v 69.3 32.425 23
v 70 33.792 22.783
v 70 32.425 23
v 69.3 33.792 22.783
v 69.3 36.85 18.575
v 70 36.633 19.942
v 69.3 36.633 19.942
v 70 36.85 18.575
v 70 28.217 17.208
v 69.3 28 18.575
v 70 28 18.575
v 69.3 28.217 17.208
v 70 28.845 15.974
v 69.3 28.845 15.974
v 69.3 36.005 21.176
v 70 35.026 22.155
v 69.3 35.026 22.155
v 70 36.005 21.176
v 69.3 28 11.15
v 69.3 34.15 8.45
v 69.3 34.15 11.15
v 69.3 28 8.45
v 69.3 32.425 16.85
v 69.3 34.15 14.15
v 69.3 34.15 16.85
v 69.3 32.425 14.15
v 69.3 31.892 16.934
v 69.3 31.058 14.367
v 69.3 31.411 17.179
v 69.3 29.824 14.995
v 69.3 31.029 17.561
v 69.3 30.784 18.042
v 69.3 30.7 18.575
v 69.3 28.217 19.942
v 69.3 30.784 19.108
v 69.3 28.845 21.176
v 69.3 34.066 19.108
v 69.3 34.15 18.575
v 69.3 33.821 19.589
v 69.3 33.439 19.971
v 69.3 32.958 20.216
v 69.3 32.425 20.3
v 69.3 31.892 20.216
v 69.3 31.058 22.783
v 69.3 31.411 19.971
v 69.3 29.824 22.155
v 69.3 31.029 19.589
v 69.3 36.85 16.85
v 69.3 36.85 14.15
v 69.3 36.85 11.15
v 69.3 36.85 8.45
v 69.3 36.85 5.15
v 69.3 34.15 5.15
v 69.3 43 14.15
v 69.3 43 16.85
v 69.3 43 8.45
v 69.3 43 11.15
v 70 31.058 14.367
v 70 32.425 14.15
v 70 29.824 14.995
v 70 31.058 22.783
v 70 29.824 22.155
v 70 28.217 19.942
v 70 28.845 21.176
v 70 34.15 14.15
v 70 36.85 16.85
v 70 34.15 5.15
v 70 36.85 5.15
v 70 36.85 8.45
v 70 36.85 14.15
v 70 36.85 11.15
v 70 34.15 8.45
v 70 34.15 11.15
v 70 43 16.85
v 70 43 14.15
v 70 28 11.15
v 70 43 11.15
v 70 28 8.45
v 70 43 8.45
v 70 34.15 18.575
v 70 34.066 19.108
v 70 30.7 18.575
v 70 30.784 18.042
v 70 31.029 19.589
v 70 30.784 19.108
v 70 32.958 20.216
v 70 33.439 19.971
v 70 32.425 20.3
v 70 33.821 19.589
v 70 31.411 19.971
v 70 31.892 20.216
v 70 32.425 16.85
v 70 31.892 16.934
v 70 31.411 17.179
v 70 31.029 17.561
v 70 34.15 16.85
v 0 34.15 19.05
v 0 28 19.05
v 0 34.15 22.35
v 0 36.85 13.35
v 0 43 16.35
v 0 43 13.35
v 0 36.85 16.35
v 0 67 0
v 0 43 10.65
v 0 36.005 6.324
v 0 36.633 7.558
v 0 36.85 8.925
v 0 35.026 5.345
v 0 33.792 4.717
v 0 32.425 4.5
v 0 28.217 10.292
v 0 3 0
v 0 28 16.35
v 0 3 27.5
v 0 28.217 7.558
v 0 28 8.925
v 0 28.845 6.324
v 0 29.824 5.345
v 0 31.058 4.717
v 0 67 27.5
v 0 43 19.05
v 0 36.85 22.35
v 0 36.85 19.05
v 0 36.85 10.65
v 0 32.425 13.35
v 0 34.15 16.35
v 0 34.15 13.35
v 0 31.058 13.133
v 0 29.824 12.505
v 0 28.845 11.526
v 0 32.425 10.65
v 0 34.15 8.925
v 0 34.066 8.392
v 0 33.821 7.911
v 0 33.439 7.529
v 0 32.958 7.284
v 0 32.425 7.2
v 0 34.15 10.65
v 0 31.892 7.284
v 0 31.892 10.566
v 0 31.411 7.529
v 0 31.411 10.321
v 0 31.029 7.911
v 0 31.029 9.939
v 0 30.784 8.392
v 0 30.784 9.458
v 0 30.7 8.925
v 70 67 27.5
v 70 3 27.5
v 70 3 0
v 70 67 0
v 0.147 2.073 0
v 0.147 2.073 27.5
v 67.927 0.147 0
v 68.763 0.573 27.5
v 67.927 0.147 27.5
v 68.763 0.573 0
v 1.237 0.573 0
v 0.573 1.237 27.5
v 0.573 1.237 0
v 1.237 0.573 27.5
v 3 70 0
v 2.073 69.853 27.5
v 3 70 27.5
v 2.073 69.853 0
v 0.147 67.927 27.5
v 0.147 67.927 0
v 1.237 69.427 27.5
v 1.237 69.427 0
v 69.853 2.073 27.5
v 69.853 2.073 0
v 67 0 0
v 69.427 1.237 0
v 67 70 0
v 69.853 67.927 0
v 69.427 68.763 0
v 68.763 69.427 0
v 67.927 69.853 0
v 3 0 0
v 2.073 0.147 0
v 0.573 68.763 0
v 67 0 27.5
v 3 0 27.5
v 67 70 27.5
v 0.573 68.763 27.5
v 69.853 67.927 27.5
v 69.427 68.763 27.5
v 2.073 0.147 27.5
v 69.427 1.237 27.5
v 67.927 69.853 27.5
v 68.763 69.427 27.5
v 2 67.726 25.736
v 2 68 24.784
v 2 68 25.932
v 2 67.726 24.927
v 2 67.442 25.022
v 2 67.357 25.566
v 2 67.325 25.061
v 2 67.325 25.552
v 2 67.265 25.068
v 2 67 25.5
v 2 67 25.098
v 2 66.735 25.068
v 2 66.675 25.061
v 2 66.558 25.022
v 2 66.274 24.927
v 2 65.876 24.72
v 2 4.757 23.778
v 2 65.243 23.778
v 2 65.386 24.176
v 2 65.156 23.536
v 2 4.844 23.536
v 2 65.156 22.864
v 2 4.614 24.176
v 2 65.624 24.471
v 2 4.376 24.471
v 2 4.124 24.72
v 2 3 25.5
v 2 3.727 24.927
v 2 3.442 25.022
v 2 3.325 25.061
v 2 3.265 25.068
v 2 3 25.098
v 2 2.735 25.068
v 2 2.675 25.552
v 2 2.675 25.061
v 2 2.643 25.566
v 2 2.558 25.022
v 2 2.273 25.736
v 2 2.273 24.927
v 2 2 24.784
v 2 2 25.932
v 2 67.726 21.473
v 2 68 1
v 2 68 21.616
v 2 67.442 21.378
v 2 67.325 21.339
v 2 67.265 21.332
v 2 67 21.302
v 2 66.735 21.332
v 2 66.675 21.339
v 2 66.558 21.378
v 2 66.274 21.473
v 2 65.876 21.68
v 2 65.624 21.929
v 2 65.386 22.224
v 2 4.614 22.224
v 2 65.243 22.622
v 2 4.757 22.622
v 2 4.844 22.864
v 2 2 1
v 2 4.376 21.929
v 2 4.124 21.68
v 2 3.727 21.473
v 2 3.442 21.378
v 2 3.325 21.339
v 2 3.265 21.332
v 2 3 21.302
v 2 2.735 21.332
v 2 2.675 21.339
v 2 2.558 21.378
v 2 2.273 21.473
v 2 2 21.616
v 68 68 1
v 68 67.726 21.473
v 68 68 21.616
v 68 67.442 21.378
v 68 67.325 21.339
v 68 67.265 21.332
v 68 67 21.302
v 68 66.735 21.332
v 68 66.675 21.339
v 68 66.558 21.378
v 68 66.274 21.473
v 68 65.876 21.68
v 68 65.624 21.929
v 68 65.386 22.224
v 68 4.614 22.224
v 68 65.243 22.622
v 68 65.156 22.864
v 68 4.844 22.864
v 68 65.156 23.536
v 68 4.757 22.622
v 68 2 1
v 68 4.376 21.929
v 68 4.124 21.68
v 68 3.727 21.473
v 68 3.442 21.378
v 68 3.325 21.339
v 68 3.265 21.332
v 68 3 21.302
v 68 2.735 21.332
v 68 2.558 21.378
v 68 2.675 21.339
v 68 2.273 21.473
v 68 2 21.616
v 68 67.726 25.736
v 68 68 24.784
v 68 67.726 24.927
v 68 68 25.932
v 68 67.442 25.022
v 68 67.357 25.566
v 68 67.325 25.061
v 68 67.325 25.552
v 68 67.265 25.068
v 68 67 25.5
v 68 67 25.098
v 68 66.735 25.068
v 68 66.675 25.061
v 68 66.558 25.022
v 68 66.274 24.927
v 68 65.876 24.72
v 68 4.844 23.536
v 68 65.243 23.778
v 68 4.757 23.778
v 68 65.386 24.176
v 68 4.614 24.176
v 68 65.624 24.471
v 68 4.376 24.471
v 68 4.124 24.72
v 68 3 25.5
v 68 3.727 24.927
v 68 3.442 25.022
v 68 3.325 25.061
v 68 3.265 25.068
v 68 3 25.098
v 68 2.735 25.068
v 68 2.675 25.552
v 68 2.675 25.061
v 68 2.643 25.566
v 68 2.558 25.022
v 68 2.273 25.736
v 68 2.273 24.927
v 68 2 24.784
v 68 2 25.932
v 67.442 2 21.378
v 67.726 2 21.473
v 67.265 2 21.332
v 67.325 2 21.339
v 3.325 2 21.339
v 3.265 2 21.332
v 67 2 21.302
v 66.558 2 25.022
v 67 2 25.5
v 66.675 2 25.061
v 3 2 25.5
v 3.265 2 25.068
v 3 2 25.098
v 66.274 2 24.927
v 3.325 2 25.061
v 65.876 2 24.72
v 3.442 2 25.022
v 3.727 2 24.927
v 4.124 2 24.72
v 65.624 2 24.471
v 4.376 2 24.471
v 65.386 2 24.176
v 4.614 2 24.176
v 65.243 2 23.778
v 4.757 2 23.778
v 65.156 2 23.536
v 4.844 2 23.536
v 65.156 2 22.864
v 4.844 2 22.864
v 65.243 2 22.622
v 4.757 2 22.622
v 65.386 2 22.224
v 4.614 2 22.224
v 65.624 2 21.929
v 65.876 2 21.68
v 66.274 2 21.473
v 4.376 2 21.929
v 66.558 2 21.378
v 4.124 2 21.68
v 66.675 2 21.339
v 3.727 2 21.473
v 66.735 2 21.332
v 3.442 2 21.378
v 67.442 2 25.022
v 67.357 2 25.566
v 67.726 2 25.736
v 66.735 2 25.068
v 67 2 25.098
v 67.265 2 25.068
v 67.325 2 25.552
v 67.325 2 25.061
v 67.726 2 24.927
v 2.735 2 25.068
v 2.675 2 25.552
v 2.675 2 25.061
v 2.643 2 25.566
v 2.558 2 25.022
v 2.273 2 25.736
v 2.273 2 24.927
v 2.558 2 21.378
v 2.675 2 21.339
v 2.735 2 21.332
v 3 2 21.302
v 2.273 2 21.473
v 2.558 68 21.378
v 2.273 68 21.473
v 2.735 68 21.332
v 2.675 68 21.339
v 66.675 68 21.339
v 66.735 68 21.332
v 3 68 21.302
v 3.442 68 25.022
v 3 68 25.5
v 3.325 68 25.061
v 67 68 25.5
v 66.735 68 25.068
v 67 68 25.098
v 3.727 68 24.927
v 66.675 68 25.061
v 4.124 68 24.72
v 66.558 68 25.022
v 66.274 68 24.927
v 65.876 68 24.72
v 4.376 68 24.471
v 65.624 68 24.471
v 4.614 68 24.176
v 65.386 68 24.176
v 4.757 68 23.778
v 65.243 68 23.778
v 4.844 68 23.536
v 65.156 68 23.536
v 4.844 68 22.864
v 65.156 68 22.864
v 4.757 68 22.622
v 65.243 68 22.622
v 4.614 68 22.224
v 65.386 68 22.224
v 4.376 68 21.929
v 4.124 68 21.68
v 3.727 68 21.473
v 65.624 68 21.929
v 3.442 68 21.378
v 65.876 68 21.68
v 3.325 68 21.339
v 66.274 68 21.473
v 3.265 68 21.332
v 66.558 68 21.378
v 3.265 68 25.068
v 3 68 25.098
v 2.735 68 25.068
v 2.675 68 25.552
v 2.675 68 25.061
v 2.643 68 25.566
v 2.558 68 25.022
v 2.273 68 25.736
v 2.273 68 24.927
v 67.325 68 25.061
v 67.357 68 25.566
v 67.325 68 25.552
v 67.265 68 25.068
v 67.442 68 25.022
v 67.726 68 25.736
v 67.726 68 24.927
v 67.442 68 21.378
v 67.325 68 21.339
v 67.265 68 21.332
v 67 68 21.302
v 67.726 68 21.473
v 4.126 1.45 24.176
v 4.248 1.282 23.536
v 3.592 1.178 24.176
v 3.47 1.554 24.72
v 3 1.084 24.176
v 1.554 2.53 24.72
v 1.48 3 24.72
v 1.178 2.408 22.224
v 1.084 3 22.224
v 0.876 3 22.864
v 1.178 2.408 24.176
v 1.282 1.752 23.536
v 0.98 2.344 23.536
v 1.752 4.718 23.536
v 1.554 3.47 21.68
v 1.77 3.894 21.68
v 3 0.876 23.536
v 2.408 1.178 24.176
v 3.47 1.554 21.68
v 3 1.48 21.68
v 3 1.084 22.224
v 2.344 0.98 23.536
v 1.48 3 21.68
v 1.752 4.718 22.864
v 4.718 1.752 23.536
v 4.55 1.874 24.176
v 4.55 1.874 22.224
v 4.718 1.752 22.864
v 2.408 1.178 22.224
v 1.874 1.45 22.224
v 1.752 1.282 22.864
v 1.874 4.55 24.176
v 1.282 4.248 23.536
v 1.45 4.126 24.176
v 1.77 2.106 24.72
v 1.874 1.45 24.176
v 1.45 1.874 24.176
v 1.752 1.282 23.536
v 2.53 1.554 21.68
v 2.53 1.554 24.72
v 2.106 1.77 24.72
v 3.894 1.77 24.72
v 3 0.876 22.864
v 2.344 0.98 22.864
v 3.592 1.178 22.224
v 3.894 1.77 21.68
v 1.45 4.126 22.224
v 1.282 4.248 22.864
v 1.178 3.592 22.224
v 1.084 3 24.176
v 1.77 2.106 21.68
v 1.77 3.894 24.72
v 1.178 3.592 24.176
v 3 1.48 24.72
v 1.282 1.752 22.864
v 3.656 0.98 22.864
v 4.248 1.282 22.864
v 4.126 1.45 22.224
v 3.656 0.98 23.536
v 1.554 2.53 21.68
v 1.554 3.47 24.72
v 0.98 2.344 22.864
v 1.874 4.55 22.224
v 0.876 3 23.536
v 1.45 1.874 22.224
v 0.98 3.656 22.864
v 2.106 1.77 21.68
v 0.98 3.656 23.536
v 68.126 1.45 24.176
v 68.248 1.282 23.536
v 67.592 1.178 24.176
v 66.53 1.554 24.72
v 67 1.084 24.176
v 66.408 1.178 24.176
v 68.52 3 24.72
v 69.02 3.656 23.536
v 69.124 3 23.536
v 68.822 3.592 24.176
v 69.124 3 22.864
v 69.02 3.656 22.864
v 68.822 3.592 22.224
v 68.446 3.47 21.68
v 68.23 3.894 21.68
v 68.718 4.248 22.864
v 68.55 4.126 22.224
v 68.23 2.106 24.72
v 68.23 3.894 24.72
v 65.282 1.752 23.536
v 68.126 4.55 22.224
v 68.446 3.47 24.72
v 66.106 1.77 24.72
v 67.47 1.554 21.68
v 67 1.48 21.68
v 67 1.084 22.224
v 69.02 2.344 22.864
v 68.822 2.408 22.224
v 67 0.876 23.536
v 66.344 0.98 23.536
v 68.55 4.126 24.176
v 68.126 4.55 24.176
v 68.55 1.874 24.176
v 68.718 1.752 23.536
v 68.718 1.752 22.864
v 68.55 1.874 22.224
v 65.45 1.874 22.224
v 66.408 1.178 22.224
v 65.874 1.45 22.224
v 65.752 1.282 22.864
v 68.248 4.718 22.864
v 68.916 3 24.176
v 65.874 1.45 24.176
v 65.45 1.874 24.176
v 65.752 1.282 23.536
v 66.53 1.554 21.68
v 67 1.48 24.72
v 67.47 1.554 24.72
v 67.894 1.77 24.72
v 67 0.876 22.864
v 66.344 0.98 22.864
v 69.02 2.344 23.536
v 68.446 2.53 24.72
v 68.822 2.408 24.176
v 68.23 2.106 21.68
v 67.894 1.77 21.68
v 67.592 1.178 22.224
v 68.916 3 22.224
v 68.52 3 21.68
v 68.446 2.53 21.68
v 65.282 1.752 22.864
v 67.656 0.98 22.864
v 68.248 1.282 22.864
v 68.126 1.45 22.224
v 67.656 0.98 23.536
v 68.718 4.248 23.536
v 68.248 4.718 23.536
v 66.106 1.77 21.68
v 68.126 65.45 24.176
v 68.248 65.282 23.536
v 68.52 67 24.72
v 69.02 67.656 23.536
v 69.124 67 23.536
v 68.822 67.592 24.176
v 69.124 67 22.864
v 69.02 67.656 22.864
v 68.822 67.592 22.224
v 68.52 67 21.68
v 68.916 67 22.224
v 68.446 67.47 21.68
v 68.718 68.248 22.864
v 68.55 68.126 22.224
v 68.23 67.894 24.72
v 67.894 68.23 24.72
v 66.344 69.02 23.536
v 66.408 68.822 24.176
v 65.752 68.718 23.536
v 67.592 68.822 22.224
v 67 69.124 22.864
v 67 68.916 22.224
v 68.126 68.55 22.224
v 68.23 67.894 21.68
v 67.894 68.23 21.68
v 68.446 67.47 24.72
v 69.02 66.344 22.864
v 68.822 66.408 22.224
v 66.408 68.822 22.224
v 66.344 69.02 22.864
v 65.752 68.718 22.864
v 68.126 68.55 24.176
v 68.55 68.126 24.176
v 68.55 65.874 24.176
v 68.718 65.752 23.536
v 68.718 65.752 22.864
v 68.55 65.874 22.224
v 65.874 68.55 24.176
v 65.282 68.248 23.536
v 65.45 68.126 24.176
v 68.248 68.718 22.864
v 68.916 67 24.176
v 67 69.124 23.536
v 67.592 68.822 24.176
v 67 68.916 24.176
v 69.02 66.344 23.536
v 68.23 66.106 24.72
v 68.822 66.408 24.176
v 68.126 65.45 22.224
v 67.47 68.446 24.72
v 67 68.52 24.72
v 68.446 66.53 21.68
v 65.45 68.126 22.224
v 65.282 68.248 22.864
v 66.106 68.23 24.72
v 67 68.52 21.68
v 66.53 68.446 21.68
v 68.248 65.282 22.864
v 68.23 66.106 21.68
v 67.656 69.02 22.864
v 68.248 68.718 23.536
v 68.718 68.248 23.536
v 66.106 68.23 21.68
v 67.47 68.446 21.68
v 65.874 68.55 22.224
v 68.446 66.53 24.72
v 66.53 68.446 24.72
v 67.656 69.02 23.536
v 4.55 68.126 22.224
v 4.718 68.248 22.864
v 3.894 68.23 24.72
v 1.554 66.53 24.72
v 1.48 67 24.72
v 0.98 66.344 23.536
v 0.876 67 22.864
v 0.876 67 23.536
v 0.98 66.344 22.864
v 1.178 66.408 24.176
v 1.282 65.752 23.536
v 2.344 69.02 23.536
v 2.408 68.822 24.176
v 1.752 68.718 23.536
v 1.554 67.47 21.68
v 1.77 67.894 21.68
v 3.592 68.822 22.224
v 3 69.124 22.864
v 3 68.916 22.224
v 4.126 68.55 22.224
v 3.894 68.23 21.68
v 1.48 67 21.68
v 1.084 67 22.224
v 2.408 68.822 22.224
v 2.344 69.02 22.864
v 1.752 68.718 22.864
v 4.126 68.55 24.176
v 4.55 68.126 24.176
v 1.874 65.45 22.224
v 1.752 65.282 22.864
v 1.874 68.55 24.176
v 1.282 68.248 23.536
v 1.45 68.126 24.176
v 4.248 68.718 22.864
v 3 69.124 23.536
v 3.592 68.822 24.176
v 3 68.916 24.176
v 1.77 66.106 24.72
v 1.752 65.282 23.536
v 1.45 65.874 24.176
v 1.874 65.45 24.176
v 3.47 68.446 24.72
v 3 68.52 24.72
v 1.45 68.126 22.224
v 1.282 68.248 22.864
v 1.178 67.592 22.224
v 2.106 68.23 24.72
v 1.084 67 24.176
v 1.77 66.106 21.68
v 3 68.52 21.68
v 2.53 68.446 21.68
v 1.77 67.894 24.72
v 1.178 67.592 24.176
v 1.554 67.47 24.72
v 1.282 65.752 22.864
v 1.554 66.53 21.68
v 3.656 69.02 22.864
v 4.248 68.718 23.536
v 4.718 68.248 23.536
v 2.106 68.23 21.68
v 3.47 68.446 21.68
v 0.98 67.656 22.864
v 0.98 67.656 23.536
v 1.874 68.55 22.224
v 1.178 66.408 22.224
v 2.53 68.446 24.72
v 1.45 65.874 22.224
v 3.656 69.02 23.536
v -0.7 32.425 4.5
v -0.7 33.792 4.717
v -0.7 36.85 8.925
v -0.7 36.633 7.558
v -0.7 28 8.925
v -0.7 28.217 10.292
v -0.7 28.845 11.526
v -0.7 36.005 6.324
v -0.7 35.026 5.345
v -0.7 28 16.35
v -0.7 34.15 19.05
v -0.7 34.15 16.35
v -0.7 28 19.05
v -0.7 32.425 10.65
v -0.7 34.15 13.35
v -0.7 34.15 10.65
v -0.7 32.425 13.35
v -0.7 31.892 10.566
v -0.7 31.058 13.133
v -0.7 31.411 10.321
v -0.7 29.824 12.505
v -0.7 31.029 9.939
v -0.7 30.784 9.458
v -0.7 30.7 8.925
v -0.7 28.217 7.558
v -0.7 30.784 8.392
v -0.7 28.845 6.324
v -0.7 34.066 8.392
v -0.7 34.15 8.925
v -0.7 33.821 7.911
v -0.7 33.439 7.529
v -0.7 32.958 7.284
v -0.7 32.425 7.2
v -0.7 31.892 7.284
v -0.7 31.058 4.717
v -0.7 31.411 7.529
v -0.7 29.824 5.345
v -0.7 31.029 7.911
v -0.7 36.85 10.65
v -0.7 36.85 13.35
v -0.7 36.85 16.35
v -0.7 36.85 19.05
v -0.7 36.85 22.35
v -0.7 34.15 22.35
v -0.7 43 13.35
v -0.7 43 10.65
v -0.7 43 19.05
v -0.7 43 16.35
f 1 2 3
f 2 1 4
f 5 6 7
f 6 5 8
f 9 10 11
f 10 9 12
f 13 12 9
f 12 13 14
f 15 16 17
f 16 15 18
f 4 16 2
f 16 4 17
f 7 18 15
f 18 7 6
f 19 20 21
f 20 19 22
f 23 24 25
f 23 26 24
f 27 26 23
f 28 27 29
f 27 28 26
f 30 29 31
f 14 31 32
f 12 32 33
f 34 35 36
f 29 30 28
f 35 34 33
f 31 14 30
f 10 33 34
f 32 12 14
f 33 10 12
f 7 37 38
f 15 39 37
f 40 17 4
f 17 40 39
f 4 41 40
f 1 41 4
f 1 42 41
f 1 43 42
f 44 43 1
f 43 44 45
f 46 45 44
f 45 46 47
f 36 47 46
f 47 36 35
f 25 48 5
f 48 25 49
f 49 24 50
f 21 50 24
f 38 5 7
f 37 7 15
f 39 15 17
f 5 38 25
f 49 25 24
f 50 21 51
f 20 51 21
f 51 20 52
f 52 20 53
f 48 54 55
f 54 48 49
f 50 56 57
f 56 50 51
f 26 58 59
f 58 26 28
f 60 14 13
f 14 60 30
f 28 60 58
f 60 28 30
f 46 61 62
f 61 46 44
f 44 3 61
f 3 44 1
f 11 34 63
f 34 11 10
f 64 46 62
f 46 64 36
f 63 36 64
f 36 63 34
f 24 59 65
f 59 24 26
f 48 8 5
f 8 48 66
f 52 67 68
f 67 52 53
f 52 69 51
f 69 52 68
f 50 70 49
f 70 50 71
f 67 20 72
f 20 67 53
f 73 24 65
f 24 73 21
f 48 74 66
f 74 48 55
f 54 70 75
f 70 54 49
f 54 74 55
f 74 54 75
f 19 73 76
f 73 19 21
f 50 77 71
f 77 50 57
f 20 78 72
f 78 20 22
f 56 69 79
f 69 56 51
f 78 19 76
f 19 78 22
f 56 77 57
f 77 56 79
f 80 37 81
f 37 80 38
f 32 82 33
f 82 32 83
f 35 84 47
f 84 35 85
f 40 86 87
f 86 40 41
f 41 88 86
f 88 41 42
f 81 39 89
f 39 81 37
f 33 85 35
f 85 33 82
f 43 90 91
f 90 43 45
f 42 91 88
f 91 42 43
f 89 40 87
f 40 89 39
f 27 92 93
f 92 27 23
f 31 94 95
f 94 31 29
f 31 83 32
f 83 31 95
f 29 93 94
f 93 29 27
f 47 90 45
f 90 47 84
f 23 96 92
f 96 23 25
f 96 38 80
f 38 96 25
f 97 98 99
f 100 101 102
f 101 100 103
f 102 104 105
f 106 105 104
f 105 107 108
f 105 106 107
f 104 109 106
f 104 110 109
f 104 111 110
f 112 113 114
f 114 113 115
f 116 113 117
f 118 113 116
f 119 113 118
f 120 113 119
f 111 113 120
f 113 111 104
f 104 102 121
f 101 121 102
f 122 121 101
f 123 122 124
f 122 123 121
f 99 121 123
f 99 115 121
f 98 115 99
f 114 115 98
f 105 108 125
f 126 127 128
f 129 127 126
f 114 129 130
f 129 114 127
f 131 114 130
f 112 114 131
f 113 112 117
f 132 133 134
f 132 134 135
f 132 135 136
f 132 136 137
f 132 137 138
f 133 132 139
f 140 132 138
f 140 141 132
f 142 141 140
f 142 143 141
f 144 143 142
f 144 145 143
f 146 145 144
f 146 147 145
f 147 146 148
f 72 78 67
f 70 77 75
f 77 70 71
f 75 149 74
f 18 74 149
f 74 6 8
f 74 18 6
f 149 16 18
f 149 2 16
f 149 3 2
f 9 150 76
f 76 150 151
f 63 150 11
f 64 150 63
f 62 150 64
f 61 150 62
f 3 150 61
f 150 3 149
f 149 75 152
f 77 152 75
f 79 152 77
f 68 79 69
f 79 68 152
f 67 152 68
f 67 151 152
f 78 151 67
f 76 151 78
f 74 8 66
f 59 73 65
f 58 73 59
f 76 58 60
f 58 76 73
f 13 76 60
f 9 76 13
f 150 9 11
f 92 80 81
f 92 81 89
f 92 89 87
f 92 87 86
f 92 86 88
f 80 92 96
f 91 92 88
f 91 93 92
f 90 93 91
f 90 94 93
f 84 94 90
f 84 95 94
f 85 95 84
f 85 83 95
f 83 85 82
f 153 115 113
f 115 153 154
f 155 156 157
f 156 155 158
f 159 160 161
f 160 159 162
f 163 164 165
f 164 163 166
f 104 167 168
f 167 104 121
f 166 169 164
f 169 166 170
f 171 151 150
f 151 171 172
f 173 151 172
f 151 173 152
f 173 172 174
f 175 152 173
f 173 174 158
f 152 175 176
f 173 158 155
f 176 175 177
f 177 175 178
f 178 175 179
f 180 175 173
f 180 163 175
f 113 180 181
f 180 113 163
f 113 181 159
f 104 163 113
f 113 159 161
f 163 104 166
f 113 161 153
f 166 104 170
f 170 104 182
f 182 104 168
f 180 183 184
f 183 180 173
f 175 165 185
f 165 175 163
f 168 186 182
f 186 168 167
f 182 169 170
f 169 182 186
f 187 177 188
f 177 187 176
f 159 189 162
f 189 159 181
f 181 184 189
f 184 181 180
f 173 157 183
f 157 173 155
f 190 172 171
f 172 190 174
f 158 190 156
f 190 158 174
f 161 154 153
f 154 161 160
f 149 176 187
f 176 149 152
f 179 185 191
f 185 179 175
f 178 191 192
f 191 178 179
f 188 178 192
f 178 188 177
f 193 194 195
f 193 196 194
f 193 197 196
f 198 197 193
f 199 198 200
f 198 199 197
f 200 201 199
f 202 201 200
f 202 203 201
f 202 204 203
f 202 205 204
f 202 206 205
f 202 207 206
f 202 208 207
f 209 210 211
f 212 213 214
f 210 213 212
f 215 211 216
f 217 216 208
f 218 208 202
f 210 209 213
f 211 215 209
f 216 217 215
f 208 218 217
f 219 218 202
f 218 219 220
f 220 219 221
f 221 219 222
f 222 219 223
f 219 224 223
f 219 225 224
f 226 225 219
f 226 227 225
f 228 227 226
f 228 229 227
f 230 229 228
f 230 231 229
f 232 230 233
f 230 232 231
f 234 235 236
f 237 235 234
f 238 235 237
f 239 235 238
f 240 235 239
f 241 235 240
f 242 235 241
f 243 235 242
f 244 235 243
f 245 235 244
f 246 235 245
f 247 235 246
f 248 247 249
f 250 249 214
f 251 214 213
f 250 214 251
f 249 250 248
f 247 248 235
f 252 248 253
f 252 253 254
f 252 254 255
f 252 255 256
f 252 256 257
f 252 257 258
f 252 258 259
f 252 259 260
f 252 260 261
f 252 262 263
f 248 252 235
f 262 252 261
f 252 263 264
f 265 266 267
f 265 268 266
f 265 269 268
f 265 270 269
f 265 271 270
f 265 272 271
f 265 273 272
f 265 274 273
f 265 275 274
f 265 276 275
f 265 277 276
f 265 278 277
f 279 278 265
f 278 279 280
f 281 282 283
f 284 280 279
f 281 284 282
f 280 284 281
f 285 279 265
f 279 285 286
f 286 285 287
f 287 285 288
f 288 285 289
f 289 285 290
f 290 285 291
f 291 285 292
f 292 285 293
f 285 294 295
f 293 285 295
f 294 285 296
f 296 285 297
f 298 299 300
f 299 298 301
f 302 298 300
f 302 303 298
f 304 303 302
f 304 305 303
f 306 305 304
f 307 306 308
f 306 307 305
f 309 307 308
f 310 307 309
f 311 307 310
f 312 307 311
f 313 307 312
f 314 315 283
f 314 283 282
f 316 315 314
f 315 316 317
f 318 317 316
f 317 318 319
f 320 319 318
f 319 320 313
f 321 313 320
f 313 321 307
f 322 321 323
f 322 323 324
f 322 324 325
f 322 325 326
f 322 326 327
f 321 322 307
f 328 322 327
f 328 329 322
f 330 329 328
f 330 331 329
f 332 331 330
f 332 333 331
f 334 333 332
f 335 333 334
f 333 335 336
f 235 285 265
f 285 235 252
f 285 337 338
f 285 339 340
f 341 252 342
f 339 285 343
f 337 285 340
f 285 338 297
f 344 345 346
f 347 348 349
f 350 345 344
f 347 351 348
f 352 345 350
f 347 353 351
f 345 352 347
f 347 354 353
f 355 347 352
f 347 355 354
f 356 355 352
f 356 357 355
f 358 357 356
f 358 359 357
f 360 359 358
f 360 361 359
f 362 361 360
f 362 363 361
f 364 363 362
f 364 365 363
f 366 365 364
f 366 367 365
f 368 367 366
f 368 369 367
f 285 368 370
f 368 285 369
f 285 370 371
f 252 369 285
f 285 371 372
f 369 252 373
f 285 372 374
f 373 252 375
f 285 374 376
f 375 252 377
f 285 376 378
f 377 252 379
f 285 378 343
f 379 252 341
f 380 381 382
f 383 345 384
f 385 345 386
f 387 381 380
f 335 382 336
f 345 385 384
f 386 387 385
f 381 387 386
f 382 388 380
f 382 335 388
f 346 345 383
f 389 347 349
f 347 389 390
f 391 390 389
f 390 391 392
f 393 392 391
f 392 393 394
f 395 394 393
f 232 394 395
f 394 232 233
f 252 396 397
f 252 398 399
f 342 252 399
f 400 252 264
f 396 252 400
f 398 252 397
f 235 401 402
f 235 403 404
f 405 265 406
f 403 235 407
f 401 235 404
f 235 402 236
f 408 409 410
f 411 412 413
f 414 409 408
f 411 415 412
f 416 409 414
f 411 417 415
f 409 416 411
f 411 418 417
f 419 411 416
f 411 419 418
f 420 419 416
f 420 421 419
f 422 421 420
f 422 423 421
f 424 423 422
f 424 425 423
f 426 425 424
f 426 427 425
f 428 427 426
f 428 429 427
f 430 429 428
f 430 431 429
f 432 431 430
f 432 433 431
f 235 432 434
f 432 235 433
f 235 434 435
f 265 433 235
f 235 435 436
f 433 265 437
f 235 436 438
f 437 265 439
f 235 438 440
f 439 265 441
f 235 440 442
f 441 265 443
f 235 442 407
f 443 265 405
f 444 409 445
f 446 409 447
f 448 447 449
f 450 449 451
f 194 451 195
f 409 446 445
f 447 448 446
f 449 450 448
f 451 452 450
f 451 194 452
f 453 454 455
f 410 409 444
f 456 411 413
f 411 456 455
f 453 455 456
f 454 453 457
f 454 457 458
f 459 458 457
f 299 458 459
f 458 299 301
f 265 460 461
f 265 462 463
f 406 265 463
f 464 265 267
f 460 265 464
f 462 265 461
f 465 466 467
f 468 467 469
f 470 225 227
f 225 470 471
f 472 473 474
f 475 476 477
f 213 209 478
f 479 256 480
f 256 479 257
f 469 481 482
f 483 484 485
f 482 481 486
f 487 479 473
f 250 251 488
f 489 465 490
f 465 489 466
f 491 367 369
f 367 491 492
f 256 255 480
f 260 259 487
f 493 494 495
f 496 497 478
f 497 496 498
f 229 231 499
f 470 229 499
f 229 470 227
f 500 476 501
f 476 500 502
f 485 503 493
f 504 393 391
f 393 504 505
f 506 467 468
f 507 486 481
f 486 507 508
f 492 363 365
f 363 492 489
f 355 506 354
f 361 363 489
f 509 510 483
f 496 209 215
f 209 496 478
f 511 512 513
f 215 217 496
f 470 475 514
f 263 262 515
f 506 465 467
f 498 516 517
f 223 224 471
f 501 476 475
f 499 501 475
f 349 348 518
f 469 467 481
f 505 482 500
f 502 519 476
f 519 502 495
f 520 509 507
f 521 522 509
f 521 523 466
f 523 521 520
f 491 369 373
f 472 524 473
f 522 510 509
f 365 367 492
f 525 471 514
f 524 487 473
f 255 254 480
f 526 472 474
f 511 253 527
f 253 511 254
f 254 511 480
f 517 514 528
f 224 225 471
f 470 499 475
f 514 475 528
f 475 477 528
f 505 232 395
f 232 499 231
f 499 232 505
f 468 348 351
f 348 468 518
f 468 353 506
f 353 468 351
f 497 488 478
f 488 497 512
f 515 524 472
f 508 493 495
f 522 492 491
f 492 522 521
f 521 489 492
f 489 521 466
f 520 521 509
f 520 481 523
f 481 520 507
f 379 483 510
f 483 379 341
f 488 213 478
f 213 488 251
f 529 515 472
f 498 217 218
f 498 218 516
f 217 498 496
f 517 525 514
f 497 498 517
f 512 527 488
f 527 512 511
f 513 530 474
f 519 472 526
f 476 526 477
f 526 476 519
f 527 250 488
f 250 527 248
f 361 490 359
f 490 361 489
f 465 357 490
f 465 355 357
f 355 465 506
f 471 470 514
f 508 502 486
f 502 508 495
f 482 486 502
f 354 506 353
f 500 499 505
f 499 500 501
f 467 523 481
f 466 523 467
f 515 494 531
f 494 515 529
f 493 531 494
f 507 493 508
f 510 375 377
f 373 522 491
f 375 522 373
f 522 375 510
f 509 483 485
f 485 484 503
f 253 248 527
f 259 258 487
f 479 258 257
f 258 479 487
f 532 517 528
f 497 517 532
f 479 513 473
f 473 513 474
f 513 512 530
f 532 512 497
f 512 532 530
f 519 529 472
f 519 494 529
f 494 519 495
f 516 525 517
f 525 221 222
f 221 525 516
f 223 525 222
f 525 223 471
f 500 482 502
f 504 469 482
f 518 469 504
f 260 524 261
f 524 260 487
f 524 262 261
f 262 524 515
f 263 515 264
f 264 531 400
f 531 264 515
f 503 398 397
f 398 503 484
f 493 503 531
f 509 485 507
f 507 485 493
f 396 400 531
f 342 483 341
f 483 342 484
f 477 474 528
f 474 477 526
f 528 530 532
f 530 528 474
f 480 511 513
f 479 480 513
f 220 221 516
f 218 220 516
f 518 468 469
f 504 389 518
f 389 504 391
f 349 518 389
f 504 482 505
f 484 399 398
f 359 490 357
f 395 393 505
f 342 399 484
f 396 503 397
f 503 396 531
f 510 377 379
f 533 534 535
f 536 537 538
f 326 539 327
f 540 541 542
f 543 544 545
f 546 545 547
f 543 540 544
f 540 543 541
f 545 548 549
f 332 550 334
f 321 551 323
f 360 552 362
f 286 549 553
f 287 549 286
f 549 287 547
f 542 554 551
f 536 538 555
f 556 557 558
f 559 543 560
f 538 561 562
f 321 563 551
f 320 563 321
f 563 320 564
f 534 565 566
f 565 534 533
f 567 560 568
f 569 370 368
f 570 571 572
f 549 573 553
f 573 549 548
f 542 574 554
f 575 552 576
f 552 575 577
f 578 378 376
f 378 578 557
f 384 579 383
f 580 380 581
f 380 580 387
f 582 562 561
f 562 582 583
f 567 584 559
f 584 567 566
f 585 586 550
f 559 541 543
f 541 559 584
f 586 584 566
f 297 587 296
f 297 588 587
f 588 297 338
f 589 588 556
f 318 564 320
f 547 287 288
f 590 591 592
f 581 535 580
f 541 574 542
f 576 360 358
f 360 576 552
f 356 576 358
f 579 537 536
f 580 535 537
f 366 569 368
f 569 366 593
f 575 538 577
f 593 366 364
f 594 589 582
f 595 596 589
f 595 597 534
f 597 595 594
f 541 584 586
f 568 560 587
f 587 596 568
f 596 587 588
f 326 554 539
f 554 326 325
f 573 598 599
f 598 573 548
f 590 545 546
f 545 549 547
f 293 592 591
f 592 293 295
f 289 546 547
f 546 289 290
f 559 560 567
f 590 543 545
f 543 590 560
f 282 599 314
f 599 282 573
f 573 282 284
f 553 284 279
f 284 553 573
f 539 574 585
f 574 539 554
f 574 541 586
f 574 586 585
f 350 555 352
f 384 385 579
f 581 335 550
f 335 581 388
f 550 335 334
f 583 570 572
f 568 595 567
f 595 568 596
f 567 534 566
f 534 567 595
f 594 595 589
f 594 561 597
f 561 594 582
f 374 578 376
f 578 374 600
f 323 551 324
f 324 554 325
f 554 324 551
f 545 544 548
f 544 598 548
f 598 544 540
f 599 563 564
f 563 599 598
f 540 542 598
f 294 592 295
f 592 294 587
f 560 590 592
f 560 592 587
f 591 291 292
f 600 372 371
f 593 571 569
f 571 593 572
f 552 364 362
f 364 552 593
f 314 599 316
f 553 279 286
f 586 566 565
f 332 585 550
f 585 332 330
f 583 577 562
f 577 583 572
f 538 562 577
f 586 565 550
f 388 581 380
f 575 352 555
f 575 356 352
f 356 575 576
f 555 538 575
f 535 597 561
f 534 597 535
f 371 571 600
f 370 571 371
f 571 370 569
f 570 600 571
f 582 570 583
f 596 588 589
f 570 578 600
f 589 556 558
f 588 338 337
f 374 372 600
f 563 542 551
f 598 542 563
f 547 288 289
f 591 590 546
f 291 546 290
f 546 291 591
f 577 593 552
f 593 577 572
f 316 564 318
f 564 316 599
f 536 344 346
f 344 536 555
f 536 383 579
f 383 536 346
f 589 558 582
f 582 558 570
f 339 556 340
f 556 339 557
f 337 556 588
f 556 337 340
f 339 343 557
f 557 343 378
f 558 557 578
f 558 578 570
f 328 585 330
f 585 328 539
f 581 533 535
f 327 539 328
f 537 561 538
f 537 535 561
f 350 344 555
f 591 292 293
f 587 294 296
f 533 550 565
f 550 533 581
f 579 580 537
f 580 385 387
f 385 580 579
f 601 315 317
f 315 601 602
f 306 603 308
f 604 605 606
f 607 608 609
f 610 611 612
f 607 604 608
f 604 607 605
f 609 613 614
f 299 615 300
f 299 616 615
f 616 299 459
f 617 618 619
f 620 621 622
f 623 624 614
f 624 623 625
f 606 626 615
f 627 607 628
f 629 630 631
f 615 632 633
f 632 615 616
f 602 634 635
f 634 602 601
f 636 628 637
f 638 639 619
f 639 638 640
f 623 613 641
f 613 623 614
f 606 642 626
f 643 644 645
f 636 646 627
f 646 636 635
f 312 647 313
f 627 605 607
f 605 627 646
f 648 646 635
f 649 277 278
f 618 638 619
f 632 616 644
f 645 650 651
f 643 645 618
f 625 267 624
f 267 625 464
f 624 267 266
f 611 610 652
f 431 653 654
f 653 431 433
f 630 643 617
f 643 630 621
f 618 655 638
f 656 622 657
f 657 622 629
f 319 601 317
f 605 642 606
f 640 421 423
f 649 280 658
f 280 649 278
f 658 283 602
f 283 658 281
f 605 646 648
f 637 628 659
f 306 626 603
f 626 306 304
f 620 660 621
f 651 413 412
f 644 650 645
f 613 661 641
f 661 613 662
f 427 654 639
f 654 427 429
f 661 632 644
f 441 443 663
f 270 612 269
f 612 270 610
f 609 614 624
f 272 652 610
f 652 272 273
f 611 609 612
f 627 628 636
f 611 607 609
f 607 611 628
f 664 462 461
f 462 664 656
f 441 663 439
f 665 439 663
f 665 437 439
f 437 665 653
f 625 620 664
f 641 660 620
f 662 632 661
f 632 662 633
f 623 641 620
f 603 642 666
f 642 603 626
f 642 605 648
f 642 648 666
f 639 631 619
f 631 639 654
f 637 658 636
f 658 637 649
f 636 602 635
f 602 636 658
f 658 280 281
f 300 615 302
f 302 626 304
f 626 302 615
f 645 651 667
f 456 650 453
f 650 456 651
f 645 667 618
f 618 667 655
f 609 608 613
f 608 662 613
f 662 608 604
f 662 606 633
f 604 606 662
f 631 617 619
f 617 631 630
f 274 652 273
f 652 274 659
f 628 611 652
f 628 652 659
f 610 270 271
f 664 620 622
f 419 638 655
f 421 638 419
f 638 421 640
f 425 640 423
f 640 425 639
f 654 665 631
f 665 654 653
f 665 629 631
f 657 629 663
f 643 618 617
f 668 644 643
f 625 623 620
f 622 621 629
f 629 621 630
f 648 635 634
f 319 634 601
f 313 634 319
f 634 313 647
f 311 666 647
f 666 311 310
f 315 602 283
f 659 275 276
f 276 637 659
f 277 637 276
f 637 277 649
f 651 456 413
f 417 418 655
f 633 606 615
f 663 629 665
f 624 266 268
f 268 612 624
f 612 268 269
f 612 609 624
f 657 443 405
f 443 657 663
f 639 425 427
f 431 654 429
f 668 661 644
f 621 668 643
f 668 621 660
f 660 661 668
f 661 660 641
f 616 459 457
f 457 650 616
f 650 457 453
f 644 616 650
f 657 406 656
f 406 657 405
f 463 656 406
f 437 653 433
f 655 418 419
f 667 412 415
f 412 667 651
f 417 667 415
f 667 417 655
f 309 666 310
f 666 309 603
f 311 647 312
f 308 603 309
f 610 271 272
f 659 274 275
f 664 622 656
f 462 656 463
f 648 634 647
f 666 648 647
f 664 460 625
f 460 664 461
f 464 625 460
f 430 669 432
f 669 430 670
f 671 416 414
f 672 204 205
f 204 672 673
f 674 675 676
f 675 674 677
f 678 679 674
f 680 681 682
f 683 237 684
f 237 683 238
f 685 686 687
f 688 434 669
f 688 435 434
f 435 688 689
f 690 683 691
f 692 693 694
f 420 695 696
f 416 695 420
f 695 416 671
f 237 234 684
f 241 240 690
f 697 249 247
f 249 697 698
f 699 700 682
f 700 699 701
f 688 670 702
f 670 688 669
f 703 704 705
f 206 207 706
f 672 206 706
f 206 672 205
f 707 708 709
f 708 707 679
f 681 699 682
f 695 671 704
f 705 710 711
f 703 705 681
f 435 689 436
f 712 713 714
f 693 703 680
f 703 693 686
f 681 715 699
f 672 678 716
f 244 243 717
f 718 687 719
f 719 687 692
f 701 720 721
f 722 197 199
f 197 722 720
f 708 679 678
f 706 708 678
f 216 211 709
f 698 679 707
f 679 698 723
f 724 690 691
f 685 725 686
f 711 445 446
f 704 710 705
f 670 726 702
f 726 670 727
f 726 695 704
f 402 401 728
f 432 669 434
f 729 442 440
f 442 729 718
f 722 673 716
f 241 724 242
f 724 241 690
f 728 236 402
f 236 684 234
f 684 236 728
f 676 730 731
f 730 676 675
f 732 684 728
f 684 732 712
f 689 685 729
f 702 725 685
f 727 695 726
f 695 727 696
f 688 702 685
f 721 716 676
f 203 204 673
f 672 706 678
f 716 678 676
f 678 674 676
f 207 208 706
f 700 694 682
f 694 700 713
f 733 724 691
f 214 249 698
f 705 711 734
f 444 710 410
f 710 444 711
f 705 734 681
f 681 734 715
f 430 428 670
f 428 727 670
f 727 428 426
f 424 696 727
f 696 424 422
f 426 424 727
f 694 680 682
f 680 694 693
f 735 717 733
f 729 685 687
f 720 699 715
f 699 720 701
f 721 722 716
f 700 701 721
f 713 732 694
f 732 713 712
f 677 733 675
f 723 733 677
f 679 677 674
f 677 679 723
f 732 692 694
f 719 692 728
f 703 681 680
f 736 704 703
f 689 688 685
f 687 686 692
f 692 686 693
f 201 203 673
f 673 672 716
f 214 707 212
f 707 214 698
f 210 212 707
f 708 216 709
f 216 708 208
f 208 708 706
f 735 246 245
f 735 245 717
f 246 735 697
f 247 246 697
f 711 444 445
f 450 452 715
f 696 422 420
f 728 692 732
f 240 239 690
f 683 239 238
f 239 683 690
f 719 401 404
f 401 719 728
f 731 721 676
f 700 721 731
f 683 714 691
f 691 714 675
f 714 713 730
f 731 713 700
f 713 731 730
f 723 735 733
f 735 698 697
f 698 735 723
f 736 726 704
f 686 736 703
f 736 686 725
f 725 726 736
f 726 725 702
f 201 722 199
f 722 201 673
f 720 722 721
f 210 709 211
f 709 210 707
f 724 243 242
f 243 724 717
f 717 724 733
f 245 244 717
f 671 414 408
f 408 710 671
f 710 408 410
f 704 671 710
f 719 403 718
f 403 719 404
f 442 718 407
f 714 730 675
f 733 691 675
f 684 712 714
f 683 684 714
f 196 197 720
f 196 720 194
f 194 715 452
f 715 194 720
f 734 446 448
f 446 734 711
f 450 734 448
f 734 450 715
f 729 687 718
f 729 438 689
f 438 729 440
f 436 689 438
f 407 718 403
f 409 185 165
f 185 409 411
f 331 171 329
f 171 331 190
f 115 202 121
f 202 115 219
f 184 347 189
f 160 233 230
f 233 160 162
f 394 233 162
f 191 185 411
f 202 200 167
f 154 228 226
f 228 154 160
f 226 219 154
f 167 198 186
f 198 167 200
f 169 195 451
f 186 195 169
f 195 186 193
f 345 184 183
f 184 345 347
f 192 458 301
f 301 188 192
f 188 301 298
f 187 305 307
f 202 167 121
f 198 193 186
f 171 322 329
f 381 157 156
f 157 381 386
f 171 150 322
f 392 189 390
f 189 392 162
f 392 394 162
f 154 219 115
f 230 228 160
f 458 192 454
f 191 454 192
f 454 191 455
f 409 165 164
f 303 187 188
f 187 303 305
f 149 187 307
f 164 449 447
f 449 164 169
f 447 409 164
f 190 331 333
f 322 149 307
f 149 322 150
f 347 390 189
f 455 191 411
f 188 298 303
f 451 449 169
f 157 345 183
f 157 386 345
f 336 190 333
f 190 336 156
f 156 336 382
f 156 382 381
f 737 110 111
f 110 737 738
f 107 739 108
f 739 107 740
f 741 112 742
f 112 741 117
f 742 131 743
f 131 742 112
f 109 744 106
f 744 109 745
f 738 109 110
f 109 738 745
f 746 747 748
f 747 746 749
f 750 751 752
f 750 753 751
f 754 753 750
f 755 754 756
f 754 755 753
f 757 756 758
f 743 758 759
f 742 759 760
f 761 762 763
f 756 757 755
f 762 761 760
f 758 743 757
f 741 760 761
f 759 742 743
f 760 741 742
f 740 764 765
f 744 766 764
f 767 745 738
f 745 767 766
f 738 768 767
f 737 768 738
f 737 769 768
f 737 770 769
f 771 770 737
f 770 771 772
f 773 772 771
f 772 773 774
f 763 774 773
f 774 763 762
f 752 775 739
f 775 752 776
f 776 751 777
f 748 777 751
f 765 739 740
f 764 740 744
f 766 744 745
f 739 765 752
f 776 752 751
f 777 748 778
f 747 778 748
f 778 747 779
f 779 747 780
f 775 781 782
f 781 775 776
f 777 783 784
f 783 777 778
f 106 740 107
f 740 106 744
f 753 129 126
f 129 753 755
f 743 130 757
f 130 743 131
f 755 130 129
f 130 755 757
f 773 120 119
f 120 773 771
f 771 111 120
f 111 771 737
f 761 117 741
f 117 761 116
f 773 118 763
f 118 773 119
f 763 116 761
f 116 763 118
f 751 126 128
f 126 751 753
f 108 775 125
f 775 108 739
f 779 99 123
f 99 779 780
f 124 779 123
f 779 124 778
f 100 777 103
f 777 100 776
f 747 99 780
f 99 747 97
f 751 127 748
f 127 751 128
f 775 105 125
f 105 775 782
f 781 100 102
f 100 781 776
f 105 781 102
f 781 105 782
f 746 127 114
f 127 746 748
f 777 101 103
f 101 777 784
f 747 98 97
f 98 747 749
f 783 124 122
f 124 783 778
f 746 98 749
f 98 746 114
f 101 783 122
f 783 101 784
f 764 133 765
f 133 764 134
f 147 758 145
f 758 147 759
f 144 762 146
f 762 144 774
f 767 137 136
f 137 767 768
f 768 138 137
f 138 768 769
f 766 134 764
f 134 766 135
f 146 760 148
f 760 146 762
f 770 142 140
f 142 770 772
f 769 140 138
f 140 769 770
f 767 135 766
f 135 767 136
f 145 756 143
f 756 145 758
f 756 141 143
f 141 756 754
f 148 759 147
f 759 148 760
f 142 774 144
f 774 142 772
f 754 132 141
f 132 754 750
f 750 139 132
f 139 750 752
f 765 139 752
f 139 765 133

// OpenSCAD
// file: logo.scad
// JH logo

thickness = 5;
size = 50;  // total height

module logo_base(thickness, size, radius, line_thickness)
{
	arrow_pos = 0.6;

	//line_thickness = size * 0.15;
	hor_line_thickness = line_thickness;
	//radius = size * 0.25 + line_thickness / 2 / 2;
	
	translate([radius, radius, 0])
	cylinder(r=radius, h=thickness);

	translate([radius, radius, 0])
	cube([radius, radius, thickness]);

	// Horizontal line
	translate([2*radius - 1, 2*radius - line_thickness, 0])
	cube([size * arrow_pos + 1, line_thickness, thickness]);

	// triangle
	/*translate([2*radius + size*arrow_pos, size/2-1.5*line_thickness, 0])
	linear_extrude(height = thickness)
	polygon(points=[[0,0],[2*line_thickness, 1.5*line_thickness],[0,3*line_thickness]], paths=[[0,1,2]]);
	*/

	// Top part of J
	translate([2*radius - hor_line_thickness, 2*radius - 1, 0])
	cube([hor_line_thickness, size - (2*radius) + 1, thickness]);

	// Right part of H
	translate([2*radius + size*0.2, 0, 0])
	cube([hor_line_thickness, size, thickness]);
}

module logo(thickness, size)
{
	line_thickness = size * 0.18;
	radius = size * 0.25 + line_thickness / 2 / 2;
	inner_radius = radius - line_thickness;
	difference() {
		logo_base(thickness, size, radius, line_thickness);
		translate([radius, radius, -1])
			cylinder(r=inner_radius, h=thickness+2);
		translate([radius, radius, -1])
			cube([inner_radius, inner_radius, thickness+2]);
	}
}

minkowski()
{
	logo(thickness, size);
	//sphere(r=3);
}
// main file
/*
 Changes:
 
 - power connector has 11mm dia
 
 - tapered back
 
 - screwless mounts for pcbs (except for rotary encoder)

*/
use <logo.scad>;

$fn = 20;

SIDE_THICKNESS = 2;
FRONT_THICKNESS = 1;
BACK_THICKNESS = 2;

// 26 for cyclone pcb, 25 for eurocircuits pcb
DEPTH = 24.5 + FRONT_THICKNESS + BACK_THICKNESS;  

INNER_WIDTH = 66;
OUTER_WIDTH = INNER_WIDTH + 2*SIDE_THICKNESS;
INNER_HEIGHT = 66;
OUTER_HEIGHT = INNER_HEIGHT + 2*SIDE_THICKNESS;

ROUNDING_R = 3;

HOLDER_OUTER_R = 4;
HOLDER_INNER_R = 1.3;
HOLDER_H = 10;

// holder
HOOK_R = 2;
HOOK_SPHERE_R = 2;
SPHERE_SIDE_OFFSET = 1;
SPHERE_HEIGHT = 2.5;

echo("OUTER_WIDTH=");
echo(OUTER_WIDTH);
echo("OUTER_HEIGHT=");
echo(OUTER_HEIGHT);

module rounded_cube(x, y, z, r) {
    translate([r,r,0])
    minkowski() {
        cube([x-2*r, y-2*r, 1]);
        cylinder(r=r, h=z-1);
    }
}

module rounded_cube2(x, y, z, r, x2, y2, r2) {
    hull() {
        translate([r,r,0])
        minkowski() {
            cube([x-2*r, y-2*r, 0.1]);
            cylinder(r=r, h=0.1);
        }

        translate([r2-(x2-x)/2,r2-(y2-y)/2,z-0.2])
        minkowski() {
            cube([x2-2*r2, y2-2*r2, 0.1]);
            cylinder(r=r2, h=0.1);
        }
    
    }
}

// subtract this shape to have a nice fit for screwless pcb mounting.
module pcb_cutout(x, y, z=1.6) {
    translate([0,0,z-0.1])
    hull() {
        cube([x, y, 0.1]);
        
        translate([2, 2, 2])
        cube([x-4, y-4, 0.1]);
    }
    
    cube([x, y, z]);
}

module tapped_hole(h1, h2, r1, r2) {
    cylinder(r=r1, h=h1);
    translate([0,0,h1-0.1])
    cylinder(r1=r1, r2=r2, h=h2);
    translate([0,0,h1+h2-0.1])
    cylinder(r=r2, h=10);
}

module base() {
union() {
difference() {
    rounded_cube(OUTER_WIDTH, OUTER_HEIGHT, DEPTH, ROUNDING_R);
    
    translate([SIDE_THICKNESS, SIDE_THICKNESS, FRONT_THICKNESS])
    cube([INNER_WIDTH, INNER_HEIGHT, DEPTH]);
    
    translate([OUTER_WIDTH - 0.7, OUTER_HEIGHT/2-7, 23])
    rotate([0,90,0])
    logo(5, 15);

    // holder
    translate([SPHERE_SIDE_OFFSET+SIDE_THICKNESS, SPHERE_SIDE_OFFSET+SIDE_THICKNESS, DEPTH-SPHERE_HEIGHT+0.2-BACK_THICKNESS])
    sphere(r=HOOK_SPHERE_R+0.15);

    translate([OUTER_WIDTH-(SPHERE_SIDE_OFFSET+SIDE_THICKNESS), SPHERE_SIDE_OFFSET+SIDE_THICKNESS, DEPTH-SPHERE_HEIGHT+0.2-BACK_THICKNESS])
    sphere(r=HOOK_SPHERE_R+0.15);

    translate([OUTER_WIDTH-(SPHERE_SIDE_OFFSET+SIDE_THICKNESS), OUTER_HEIGHT-(SPHERE_SIDE_OFFSET+SIDE_THICKNESS), DEPTH-SPHERE_HEIGHT+0.2-BACK_THICKNESS])
    sphere(r=HOOK_SPHERE_R+0.15);

    translate([SPHERE_SIDE_OFFSET+SIDE_THICKNESS, OUTER_HEIGHT-(SPHERE_SIDE_OFFSET+SIDE_THICKNESS), DEPTH-SPHERE_HEIGHT+0.2-BACK_THICKNESS])
    sphere(r=HOOK_SPHERE_R+0.15);

    // taper back side
    translate([2,2,DEPTH-BACK_THICKNESS])
    rounded_cube2(OUTER_WIDTH-4, OUTER_HEIGHT-4, BACK_THICKNESS+0.2, ROUNDING_R-2,
               OUTER_WIDTH, OUTER_HEIGHT, ROUNDING_R);

}

    translate([2-0.7, OUTER_HEIGHT/2-7, 4.5])
    rotate([0,-90,0])
    logo(2, 15);

    // grid in front, testing
    *for (i=[0:6]) {
        translate([-0.25+i*8.14+8.14+SIDE_THICKNESS+0.43, 1, 0.1])
        cube([0.5, OUTER_HEIGHT-2, FRONT_THICKNESS+0.5]);
    }
    *for (i=[0:6]) {
        if (i == 6) {
            translate([1, -0.25+i*8.31+8.31+SIDE_THICKNESS-0.25, 0.1])
            cube([OUTER_WIDTH-2-9.0, 0.5, FRONT_THICKNESS+0.5]);
        } else {
            translate([1, -0.25+i*8.31+8.31+SIDE_THICKNESS-0.25, 0.1])
            cube([OUTER_WIDTH-2, 0.5, FRONT_THICKNESS+0.5]);
        }
    }

}
}

SCREW_R1 = 1.5;
SCREW_R2 = 3;


MOUNT_SCREW_R = 1.5;  // for base pcb
MOUNT_SCREW_OUTER_R = 3;

MOUNT_SCREW_R2 = 1.1;  // for rtc module
MOUNT_SCREW_OUTER_R2 = 2.5;  // for rtc module

module mounting_tube(h) {
    difference() {
        cylinder(r=MOUNT_SCREW_OUTER_R, h=h);
        translate([0,0,-1])
        cylinder(r=MOUNT_SCREW_R, h=h+2);
    }
}

module pcb_mounting_tubes(h) {
    translate([0.1*25.4, 0.1*25.4, 0])
    mounting_tube(h);

    translate([2.4*25.4, 0.1*25.4, 0])
    mounting_tube(h);

    translate([0.1*25.4, 1.4*25.4, 0])
    mounting_tube(h);

    translate([2.4*25.4, 1.4*25.4, 0])
    mounting_tube(h);
}

module pcb_enc_mount() {
    translate([(2.5-0.45) * 25.4, 1.1*25.4, 0])
    cylinder(r=7, h=2);
}

PRG_MARGIN = 1;

module pcb_holes() {
    translate([(2.5-0.45) * 25.4, 1.1*25.4, -10])
    cylinder(r=4, h=50);

    translate([(2.5-0.45) * 25.4, 1.1*25.4 + 6, 2-1])
    cylinder(r=1.2, h=2);

    translate([0.7 * 25.4-PRG_MARGIN, 0.35*25.4-PRG_MARGIN, -10])
    cube([0.6*25.4+2*PRG_MARGIN, 2.54+2*PRG_MARGIN, 15]);
}

module mounting_tube_rtc(h) {
    difference() {
        cylinder(r=MOUNT_SCREW_OUTER_R2, h=h);
        translate([0,0,-1])
        cylinder(r=MOUNT_SCREW_R2, h=h+2);
    }
}

module rtc_mounts(h) {
    translate([-4, 2, 0])
    mounting_tube_rtc(h);

    translate([-29.8, 20, 0])
    mounting_tube_rtc(h);

    translate([-4, 20, 0])
    mounting_tube_rtc(h);
}

MOUNTING_R = 1.5;
HOOK_CLEARANCE = 0.7;  // was 0.2

module back() {
   difference() {
       union() {
           //rounded_cube(OUTER_WIDTH, OUTER_HEIGHT, BACK_THICKNESS, ROUNDING_R);
           rounded_cube2(OUTER_WIDTH, OUTER_HEIGHT, BACK_THICKNESS, ROUNDING_R,
                OUTER_WIDTH-4, OUTER_HEIGHT-4, ROUNDING_R-2);
           
           translate([3,27,BACK_THICKNESS-0.1])
           pcb_enc_mount();

            // support for display
            hull() {
           translate([64,24.7,BACK_THICKNESS-0.1])
           cylinder(r=2, h=DEPTH-7);
           translate([64,20.7,BACK_THICKNESS-0.1])
           cylinder(r=2, h=DEPTH-7);
            }           

           hull() {
            translate([10,67.3-MOUNTING_R,FRONT_THICKNESS-0.1])
            cylinder(r=MOUNTING_R, h=13);

            translate([25,67.3-MOUNTING_R,FRONT_THICKNESS-0.1])
            cylinder(r=MOUNTING_R, h=13);
           }

           translate([64,27,FRONT_THICKNESS-0.1])
           cylinder(r=MOUNTING_R, h=13);

            hull() {
               translate([10,27,FRONT_THICKNESS-0.1])
               cylinder(r=MOUNTING_R, h=13);

               translate([32,27,FRONT_THICKNESS-0.1])
               cylinder(r=MOUNTING_R, h=13);
            }

            hull() {
               translate([10,SIDE_THICKNESS+0.7+MOUNTING_R,FRONT_THICKNESS-0.1])
               cylinder(r=MOUNTING_R, h=10);

               translate([32,SIDE_THICKNESS+0.7+MOUNTING_R,FRONT_THICKNESS-0.1])
               cylinder(r=MOUNTING_R, h=10);
            }
                
           // corner hook thing; clearance of HOOK_CLEARANCE
           translate([HOOK_R+SIDE_THICKNESS+0.1, OUTER_HEIGHT-HOOK_R-SIDE_THICKNESS-0.1, BACK_THICKNESS-0.1])
           cylinder(r=HOOK_R, h=SPHERE_HEIGHT);
            
           translate([SPHERE_SIDE_OFFSET+SIDE_THICKNESS+HOOK_CLEARANCE, OUTER_HEIGHT-SPHERE_SIDE_OFFSET-SIDE_THICKNESS-HOOK_CLEARANCE, BACK_THICKNESS+SPHERE_HEIGHT])
           sphere(r=HOOK_SPHERE_R);


           translate([OUTER_WIDTH-(HOOK_R+SIDE_THICKNESS+0.1), OUTER_HEIGHT-HOOK_R-SIDE_THICKNESS-0.1, BACK_THICKNESS-0.1])
           cylinder(r=HOOK_R, h=SPHERE_HEIGHT);
            
           translate([OUTER_WIDTH-(SPHERE_SIDE_OFFSET+SIDE_THICKNESS)-HOOK_CLEARANCE, OUTER_HEIGHT-SPHERE_SIDE_OFFSET-SIDE_THICKNESS-HOOK_CLEARANCE, BACK_THICKNESS+SPHERE_HEIGHT])
           sphere(r=HOOK_SPHERE_R);


           translate([OUTER_WIDTH-(HOOK_R+SIDE_THICKNESS+0.1), HOOK_R+SIDE_THICKNESS+0.1, BACK_THICKNESS-0.1])
           cylinder(r=HOOK_R, h=SPHERE_HEIGHT);
            
           translate([OUTER_WIDTH-(SPHERE_SIDE_OFFSET+SIDE_THICKNESS)-HOOK_CLEARANCE, SPHERE_SIDE_OFFSET+SIDE_THICKNESS+HOOK_CLEARANCE, BACK_THICKNESS+SPHERE_HEIGHT])
           sphere(r=HOOK_SPHERE_R);


           translate([HOOK_R+SIDE_THICKNESS+0.1, HOOK_R+SIDE_THICKNESS+0.1, BACK_THICKNESS-0.1])
           cylinder(r=HOOK_R, h=SPHERE_HEIGHT);
            
           translate([SPHERE_SIDE_OFFSET+SIDE_THICKNESS+HOOK_CLEARANCE, SPHERE_SIDE_OFFSET+SIDE_THICKNESS+HOOK_CLEARANCE, BACK_THICKNESS+SPHERE_HEIGHT])
           sphere(r=HOOK_SPHERE_R);
                        
                        
   } // union
       
       translate([3,27,BACK_THICKNESS-0.1])
       pcb_holes();
       
       //pwr connector
       translate([59,11.5,-1])
       cylinder(r=5.7,h=10, $fn=30);

       // pcb cutout
       //translate([SIDE_THICKNESS+0.5, OUTER_HEIGHT - SIDE_THICKNESS - 2 - 38, FRONT_THICKNESS + 9])
       translate([3, 27+0.2, FRONT_THICKNESS + 9])
       #pcb_cutout(64, 38.2);

       translate([SIDE_THICKNESS+0.5, 5-0.2, FRONT_THICKNESS + 6])
       #pcb_cutout(38, 22.2);
   
       translate([SIDE_THICKNESS+0.5+16.5, 5+11, FRONT_THICKNESS + 3])
       cylinder(r=12, h=10, $fn=30);
   }
}

base();
//back();

//pcb_cutout(100,100);
